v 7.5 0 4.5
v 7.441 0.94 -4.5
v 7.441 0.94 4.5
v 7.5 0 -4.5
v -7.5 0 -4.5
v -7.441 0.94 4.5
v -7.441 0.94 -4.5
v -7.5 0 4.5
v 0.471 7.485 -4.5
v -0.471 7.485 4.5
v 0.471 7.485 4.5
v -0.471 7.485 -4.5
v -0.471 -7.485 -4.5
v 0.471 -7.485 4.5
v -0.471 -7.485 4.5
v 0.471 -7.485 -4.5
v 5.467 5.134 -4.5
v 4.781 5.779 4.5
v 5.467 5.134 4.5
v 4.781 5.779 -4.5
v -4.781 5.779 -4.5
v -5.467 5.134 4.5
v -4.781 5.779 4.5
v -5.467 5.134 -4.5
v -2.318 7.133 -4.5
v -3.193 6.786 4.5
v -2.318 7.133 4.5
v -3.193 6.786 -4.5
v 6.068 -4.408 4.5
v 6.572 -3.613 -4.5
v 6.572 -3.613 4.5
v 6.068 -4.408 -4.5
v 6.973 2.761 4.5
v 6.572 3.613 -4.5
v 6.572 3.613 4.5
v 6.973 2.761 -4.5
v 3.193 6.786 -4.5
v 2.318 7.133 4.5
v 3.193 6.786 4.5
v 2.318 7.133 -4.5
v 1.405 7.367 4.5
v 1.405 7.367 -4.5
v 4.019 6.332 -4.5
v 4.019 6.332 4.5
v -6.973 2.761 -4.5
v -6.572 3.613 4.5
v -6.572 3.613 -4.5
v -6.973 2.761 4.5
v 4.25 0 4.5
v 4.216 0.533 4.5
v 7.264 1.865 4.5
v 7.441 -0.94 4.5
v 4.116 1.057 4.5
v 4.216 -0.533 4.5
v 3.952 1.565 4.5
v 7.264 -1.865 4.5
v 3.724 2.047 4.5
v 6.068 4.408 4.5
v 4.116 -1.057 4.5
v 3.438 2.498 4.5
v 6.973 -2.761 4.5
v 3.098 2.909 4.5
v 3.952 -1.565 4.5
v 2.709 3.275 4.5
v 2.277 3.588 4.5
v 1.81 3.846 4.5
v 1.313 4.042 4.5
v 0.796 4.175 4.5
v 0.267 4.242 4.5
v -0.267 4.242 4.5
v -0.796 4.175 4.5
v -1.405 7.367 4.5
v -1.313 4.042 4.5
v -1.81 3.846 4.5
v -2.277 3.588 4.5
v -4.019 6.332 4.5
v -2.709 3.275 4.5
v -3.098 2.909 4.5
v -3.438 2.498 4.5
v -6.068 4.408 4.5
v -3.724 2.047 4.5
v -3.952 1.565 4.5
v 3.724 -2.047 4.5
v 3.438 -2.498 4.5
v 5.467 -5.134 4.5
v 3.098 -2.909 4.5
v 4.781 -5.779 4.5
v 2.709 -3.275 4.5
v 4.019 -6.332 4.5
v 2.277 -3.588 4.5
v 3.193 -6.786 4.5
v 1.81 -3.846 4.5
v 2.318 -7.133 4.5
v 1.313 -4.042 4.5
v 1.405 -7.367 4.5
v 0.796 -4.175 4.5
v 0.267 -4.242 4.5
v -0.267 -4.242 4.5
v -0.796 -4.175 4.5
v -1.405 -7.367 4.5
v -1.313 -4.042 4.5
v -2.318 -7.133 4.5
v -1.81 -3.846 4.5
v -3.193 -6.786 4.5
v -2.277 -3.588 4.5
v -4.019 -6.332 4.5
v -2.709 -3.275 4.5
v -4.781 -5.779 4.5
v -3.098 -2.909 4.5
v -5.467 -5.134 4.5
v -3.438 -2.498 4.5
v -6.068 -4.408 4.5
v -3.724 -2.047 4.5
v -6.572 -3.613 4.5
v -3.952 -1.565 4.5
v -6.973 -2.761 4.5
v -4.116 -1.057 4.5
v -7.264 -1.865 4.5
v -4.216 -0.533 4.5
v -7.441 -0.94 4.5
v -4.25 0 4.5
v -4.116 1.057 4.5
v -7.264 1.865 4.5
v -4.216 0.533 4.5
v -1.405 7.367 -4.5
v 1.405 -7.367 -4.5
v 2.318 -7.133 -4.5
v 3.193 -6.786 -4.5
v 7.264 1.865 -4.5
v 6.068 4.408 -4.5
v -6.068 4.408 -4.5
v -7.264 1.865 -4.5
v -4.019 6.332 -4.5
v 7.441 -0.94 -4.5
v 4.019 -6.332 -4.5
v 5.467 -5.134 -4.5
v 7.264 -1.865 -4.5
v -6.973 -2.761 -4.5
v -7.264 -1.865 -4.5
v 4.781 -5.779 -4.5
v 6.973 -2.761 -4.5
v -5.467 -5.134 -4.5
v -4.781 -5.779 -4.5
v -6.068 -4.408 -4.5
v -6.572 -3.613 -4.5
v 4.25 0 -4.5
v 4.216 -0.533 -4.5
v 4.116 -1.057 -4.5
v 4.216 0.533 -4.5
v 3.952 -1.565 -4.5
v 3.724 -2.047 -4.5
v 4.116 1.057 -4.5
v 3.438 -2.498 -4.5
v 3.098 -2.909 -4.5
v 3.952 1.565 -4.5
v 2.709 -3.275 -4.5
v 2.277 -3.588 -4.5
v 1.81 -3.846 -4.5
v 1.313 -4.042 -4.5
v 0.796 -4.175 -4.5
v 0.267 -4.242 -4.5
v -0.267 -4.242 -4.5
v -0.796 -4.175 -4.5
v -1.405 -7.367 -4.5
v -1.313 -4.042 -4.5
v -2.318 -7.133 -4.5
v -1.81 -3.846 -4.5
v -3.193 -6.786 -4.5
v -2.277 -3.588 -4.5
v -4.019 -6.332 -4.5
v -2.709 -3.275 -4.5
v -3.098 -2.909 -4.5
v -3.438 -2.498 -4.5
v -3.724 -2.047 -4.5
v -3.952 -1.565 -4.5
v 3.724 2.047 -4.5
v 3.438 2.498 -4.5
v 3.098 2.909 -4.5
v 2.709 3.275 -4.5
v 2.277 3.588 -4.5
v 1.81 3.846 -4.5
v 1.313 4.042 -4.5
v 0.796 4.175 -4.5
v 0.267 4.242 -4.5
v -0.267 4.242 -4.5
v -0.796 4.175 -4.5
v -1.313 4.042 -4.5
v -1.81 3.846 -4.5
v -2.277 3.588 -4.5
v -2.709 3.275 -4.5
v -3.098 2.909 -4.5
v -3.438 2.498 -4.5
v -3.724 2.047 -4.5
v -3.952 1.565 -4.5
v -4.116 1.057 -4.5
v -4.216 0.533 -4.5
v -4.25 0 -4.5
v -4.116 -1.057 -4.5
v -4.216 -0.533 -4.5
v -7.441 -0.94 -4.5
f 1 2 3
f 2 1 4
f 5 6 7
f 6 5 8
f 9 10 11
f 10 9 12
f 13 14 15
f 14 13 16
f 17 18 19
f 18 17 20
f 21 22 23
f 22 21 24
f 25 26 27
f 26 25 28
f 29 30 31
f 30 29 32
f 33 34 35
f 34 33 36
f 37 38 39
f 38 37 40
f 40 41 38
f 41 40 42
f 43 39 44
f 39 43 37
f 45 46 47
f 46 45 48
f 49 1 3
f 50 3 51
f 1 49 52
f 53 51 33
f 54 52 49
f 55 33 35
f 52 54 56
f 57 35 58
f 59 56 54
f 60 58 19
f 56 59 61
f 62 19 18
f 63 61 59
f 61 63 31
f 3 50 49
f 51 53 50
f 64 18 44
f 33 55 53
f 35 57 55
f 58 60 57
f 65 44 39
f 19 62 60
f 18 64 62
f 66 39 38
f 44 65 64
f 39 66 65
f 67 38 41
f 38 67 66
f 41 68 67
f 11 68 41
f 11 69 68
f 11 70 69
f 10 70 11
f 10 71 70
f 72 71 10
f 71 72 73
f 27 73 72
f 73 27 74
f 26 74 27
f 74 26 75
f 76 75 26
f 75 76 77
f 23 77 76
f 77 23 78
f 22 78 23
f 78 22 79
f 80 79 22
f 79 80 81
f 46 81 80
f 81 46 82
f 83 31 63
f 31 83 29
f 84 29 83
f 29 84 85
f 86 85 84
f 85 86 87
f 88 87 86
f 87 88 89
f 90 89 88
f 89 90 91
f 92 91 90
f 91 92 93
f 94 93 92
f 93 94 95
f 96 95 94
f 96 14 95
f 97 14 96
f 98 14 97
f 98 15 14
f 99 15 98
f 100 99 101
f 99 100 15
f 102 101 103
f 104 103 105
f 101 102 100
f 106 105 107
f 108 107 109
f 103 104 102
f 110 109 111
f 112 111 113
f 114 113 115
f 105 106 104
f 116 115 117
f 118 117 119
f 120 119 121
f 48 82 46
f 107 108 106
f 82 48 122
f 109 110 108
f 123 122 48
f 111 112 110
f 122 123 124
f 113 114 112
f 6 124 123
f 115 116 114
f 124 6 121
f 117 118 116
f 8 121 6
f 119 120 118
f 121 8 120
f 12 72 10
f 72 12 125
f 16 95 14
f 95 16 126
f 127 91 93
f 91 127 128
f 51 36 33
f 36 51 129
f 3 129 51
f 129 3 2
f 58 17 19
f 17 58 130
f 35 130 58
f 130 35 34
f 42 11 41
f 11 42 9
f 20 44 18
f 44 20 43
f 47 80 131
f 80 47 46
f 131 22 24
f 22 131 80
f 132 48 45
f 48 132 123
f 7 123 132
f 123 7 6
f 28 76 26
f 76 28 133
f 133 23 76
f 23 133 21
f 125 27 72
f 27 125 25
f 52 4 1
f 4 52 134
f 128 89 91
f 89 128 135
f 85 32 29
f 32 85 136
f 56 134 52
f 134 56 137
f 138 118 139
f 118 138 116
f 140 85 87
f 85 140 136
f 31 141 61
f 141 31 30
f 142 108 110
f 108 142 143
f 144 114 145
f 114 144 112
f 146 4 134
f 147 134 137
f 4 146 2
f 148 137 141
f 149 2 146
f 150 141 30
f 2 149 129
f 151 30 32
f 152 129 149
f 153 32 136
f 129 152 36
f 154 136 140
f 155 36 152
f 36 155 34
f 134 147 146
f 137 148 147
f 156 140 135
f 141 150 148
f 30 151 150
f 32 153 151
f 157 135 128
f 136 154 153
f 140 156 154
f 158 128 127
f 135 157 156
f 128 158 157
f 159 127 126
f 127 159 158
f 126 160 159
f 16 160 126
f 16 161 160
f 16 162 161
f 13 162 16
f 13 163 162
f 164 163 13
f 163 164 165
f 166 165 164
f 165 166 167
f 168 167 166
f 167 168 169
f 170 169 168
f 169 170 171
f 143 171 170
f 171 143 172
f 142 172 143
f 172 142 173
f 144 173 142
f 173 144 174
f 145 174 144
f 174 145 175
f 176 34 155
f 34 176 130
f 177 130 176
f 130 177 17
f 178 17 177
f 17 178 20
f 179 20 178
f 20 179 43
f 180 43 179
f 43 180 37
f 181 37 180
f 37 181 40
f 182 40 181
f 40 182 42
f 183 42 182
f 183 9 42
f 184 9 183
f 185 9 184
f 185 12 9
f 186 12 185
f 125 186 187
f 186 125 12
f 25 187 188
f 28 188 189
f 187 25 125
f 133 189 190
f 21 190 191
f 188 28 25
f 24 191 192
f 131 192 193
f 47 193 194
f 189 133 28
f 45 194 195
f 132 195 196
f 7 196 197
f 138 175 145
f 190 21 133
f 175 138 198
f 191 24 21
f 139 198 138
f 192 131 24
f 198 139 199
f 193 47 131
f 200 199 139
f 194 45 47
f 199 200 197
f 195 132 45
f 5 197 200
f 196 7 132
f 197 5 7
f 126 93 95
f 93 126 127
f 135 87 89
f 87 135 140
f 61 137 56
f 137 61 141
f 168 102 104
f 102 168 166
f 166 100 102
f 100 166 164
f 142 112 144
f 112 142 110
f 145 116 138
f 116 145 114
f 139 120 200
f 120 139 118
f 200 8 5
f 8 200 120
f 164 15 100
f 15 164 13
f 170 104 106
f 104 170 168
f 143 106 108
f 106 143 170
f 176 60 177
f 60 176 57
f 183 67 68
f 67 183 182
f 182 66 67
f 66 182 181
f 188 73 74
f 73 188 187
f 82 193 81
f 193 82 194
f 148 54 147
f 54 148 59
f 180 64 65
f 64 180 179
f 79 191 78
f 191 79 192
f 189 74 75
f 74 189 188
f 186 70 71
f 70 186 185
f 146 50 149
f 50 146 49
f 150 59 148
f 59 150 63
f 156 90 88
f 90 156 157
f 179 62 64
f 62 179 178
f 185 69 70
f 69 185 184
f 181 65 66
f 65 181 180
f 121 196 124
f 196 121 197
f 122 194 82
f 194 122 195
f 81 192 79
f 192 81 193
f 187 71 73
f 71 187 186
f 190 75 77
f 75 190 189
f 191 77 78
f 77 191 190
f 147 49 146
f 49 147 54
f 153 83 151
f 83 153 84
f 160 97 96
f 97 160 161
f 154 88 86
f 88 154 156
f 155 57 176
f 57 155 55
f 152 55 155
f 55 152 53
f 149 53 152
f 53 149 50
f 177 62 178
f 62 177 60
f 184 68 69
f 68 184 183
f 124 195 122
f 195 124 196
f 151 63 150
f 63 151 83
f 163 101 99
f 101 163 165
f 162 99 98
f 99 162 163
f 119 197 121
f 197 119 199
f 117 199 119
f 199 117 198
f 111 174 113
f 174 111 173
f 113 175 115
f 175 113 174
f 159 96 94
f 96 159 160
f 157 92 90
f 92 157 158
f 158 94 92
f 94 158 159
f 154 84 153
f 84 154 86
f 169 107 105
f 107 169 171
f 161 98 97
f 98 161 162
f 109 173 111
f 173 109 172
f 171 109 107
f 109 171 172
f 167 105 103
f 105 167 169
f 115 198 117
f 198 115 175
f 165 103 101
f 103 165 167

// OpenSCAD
$fn = 50;


difference() {
	union() {
		translate(v = [0, 0, -4.5000000000]) {
			cylinder(h = 9, r = 7.5000000000);
		}
	}
	union() {
		translate(v = [0, 0, -100.0000000000]) {
			cylinder(h = 200, r = 4.2500000000);
		}
	}
}
